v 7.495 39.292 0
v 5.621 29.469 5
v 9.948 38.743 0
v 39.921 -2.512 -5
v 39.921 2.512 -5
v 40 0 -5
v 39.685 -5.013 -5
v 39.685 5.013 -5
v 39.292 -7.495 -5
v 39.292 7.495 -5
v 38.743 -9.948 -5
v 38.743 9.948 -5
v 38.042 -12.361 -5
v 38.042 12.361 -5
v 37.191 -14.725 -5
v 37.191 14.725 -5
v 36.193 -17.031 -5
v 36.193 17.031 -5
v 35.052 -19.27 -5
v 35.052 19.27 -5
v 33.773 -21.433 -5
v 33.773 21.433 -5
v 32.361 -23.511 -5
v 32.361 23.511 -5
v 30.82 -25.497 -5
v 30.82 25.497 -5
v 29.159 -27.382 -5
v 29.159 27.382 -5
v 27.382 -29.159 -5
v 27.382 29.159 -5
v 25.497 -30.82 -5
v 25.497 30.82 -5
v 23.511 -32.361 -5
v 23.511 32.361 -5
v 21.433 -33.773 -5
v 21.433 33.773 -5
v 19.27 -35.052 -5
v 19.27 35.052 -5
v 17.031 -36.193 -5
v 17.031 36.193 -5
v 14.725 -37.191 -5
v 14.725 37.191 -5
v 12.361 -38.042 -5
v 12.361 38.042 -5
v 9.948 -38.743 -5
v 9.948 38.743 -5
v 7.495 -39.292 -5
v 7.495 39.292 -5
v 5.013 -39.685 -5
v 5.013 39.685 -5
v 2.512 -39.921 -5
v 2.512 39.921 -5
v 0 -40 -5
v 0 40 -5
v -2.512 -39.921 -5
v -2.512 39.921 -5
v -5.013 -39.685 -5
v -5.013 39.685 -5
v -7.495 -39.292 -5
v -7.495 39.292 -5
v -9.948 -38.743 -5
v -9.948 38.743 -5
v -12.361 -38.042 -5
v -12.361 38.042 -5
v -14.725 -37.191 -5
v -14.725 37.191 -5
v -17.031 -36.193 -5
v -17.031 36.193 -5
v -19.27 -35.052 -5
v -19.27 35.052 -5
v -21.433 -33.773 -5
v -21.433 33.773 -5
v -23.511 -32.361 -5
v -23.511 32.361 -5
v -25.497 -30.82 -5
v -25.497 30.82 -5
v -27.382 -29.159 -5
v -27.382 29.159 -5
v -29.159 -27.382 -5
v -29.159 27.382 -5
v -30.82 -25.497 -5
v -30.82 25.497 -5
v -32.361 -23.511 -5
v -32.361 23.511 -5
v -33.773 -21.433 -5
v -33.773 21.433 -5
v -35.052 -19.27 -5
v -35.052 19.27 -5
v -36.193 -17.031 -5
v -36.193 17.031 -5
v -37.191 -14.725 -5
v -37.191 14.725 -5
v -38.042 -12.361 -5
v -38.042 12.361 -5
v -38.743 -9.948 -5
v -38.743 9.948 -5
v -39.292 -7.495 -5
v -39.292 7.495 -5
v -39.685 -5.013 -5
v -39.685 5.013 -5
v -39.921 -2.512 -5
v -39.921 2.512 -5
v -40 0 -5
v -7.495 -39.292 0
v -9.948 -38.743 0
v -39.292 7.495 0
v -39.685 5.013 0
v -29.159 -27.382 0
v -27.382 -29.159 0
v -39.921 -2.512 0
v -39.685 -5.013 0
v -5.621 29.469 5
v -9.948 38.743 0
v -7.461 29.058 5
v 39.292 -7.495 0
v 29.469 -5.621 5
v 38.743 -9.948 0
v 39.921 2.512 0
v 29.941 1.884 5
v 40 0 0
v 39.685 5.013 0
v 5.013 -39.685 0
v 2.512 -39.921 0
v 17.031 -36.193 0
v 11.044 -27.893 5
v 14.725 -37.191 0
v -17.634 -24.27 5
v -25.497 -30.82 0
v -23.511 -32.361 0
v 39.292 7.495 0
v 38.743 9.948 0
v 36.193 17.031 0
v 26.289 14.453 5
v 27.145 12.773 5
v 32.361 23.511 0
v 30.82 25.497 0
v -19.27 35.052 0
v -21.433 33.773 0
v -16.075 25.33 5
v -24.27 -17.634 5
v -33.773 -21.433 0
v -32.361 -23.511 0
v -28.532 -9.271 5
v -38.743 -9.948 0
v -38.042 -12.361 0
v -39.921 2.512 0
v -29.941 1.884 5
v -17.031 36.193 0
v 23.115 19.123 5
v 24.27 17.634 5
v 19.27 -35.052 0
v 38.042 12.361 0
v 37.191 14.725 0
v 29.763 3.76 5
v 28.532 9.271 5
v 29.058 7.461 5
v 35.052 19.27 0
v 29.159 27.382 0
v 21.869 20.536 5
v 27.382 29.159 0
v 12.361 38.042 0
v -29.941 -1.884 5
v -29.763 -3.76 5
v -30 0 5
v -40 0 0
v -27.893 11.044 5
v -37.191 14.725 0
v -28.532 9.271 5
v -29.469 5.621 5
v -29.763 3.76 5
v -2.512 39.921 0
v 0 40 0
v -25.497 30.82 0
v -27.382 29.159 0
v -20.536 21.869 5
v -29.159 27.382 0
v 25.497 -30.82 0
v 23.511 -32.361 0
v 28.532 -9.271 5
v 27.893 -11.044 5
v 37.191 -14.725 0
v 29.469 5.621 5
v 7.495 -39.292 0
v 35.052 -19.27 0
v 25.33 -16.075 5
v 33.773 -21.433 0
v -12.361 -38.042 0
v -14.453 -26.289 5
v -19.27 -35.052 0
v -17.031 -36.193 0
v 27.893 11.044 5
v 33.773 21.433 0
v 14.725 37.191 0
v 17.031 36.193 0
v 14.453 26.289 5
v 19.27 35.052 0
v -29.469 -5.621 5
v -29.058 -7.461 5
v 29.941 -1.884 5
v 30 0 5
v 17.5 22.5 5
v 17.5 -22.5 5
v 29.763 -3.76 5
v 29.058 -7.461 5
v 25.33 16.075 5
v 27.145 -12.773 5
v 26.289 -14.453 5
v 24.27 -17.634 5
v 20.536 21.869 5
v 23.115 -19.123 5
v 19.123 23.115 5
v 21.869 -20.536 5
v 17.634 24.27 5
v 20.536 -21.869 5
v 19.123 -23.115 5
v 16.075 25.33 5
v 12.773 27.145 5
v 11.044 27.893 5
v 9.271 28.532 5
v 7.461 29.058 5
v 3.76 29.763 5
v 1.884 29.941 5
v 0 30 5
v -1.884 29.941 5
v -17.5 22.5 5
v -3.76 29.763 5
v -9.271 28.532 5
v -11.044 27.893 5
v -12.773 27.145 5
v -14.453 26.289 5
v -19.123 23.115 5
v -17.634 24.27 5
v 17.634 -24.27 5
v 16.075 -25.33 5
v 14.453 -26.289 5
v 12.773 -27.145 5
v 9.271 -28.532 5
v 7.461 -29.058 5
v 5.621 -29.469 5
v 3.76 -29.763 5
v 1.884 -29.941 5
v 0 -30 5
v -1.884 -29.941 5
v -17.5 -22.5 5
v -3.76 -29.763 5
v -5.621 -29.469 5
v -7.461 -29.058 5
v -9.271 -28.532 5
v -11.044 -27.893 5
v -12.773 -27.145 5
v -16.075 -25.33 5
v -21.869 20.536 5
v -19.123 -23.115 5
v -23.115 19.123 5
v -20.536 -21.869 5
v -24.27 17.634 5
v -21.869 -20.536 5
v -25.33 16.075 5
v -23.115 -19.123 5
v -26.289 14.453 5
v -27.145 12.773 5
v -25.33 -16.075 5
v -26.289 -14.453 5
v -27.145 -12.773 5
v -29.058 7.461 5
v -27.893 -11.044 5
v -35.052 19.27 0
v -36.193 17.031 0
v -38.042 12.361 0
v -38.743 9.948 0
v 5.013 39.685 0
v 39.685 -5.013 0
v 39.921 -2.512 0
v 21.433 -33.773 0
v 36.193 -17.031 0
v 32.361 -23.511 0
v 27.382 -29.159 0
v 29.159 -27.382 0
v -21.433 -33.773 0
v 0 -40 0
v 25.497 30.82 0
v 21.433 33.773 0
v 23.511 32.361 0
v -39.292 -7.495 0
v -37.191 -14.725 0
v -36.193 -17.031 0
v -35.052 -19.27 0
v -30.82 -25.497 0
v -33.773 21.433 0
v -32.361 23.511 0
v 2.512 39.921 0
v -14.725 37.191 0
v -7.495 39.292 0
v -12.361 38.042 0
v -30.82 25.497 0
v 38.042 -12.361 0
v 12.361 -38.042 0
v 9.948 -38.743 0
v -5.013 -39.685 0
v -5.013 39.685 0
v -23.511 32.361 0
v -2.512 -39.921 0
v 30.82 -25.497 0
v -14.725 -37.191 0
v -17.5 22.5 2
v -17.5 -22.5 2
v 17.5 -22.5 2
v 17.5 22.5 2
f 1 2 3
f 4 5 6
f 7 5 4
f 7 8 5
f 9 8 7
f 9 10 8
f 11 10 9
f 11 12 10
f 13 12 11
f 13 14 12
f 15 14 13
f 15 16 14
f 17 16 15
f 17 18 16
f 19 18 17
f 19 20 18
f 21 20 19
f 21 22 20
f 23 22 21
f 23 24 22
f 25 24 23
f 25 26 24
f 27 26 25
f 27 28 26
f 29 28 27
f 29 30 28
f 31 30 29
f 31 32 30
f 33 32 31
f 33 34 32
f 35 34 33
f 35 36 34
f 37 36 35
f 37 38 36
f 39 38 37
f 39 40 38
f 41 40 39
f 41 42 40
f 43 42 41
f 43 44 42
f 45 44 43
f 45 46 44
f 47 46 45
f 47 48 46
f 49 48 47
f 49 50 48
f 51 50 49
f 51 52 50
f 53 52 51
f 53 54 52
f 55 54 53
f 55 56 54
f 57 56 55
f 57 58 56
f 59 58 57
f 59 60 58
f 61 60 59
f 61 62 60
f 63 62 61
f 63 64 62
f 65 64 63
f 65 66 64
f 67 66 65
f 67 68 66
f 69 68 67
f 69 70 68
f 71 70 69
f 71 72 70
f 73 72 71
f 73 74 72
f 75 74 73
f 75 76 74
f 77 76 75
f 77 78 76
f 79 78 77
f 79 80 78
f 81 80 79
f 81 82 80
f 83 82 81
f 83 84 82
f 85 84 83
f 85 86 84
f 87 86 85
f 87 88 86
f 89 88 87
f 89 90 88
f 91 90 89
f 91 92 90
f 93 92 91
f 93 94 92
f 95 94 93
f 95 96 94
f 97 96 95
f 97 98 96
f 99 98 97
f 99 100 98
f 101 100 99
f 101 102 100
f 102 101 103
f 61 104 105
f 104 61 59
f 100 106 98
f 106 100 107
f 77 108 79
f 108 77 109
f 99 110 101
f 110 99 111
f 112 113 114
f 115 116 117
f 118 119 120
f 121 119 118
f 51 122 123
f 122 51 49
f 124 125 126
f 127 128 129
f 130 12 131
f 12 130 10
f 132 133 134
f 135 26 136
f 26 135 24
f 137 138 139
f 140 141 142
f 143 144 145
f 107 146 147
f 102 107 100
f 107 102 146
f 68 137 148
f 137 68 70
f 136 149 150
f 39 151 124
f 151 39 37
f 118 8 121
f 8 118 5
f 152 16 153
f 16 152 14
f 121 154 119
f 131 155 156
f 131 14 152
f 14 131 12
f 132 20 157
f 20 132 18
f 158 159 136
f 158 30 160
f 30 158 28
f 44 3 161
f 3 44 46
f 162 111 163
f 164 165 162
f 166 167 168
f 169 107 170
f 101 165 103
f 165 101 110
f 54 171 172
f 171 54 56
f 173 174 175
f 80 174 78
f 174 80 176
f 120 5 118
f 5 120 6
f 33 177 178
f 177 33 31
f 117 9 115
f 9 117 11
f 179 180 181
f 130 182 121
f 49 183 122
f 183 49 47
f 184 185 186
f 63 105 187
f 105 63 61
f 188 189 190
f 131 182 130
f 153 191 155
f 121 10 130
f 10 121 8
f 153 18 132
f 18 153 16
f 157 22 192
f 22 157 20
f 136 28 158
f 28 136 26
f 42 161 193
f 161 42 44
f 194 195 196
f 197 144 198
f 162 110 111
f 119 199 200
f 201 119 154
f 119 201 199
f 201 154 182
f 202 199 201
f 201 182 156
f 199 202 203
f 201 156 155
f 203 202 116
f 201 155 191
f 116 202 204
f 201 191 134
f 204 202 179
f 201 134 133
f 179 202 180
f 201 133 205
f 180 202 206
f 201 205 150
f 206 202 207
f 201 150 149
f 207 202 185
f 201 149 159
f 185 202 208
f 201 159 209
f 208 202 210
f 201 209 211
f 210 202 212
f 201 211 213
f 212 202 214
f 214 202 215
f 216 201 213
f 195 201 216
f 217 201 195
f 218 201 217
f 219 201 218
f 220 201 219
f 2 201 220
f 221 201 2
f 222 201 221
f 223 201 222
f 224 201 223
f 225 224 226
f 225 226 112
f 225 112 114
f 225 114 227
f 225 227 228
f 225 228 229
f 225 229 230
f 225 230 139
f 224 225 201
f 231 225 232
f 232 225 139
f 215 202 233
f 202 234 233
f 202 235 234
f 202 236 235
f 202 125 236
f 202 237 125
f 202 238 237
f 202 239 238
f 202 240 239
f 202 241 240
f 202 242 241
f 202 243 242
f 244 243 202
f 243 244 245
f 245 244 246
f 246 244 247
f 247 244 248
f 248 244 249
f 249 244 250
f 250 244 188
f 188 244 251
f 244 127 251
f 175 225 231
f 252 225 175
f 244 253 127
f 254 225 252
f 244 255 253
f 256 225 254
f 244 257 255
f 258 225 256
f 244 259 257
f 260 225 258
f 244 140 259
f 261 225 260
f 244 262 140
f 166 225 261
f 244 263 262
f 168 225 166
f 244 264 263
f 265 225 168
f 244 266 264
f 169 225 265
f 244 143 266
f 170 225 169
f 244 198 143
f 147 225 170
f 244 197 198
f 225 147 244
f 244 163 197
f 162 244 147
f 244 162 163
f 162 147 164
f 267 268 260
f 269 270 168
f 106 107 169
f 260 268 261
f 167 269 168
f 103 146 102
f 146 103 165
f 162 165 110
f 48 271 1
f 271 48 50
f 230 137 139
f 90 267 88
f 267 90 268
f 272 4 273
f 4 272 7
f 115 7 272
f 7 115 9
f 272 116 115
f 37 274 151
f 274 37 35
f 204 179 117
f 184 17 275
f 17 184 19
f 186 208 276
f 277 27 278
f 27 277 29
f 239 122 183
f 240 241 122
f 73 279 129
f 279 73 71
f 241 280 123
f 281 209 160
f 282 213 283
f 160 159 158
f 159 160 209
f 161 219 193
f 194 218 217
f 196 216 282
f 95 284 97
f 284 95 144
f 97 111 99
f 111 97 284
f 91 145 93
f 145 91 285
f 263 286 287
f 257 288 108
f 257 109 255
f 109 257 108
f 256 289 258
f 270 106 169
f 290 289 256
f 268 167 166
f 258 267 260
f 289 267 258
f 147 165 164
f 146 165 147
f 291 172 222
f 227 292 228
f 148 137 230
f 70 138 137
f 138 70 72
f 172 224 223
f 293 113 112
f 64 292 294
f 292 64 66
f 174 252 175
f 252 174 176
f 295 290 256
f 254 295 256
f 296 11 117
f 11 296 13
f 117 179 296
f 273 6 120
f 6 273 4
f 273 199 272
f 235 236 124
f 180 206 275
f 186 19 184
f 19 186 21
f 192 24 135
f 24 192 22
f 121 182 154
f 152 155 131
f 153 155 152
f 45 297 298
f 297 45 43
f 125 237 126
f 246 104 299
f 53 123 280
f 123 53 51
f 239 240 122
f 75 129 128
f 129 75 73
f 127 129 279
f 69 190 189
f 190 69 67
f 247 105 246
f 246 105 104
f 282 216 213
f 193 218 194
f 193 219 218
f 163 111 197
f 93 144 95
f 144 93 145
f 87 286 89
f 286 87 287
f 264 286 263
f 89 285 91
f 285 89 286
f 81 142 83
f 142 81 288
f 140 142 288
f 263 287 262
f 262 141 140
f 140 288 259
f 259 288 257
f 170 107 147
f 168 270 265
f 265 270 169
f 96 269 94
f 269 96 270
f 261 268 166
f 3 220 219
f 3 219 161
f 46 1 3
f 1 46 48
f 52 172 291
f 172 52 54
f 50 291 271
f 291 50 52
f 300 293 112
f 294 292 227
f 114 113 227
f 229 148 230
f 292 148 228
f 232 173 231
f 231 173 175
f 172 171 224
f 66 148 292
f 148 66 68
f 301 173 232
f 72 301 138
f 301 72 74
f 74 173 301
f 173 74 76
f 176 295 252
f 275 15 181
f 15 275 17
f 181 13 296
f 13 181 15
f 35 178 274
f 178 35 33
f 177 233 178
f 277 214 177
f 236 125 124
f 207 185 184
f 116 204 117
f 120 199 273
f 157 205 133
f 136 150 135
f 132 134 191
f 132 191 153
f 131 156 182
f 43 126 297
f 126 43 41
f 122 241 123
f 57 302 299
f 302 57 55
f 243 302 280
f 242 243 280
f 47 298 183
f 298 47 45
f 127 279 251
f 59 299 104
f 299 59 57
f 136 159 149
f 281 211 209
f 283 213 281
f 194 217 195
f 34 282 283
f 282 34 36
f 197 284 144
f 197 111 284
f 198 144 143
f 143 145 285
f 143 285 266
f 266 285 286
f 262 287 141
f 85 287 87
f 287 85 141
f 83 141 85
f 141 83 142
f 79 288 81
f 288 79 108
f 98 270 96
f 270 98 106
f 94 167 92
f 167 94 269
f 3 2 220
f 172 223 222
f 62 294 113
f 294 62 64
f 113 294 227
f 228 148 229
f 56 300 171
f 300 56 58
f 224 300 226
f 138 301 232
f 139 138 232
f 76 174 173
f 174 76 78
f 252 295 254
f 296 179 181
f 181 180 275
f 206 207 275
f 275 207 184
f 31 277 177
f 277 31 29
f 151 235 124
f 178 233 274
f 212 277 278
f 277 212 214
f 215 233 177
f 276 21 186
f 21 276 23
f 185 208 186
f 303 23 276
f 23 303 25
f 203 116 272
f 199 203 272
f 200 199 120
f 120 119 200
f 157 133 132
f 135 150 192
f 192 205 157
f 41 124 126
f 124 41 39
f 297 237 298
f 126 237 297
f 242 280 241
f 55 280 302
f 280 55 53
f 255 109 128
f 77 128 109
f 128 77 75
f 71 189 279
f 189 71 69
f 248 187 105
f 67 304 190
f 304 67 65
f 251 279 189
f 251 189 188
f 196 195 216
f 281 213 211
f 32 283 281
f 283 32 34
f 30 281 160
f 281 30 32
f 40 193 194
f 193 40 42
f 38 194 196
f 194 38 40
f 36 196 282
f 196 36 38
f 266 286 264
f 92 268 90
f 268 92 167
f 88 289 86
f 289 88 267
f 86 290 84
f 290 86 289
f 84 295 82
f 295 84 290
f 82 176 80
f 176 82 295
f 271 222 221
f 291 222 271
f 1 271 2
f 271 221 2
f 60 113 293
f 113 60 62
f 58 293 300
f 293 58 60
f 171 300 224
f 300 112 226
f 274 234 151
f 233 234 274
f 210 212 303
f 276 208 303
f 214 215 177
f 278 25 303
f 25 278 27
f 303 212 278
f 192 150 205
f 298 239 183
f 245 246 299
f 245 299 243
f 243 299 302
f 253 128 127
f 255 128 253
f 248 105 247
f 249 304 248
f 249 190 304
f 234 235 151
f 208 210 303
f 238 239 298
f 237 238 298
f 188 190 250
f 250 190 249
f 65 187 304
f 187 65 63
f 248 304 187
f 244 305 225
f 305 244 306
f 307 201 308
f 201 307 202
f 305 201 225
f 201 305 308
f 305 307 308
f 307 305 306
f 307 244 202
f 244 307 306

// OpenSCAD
$fn = 100;
plinth();

module plinth(size=[80,60,10], support=[35,45], base_fat=5, cutout=3) {

	top_height=1;
	top_pad = 3;
	difference() {
		hull() {
			//base_cyl
			translate([0,0, -(size[2]-base_fat)/2]) {
				cylinder(d=size[0], h=base_fat, center = true);
			}

			//top_cube
			translate([0,0, (size[2]-top_height)/2]) {
				cylinder(d=size[1], h=top_height, center = true);
			}
		}
		//cutout
		translate([0,0,(size[2])/2]) {
			cube([support[0], support[1], cutout*2], center=true);
		}

	}
}
